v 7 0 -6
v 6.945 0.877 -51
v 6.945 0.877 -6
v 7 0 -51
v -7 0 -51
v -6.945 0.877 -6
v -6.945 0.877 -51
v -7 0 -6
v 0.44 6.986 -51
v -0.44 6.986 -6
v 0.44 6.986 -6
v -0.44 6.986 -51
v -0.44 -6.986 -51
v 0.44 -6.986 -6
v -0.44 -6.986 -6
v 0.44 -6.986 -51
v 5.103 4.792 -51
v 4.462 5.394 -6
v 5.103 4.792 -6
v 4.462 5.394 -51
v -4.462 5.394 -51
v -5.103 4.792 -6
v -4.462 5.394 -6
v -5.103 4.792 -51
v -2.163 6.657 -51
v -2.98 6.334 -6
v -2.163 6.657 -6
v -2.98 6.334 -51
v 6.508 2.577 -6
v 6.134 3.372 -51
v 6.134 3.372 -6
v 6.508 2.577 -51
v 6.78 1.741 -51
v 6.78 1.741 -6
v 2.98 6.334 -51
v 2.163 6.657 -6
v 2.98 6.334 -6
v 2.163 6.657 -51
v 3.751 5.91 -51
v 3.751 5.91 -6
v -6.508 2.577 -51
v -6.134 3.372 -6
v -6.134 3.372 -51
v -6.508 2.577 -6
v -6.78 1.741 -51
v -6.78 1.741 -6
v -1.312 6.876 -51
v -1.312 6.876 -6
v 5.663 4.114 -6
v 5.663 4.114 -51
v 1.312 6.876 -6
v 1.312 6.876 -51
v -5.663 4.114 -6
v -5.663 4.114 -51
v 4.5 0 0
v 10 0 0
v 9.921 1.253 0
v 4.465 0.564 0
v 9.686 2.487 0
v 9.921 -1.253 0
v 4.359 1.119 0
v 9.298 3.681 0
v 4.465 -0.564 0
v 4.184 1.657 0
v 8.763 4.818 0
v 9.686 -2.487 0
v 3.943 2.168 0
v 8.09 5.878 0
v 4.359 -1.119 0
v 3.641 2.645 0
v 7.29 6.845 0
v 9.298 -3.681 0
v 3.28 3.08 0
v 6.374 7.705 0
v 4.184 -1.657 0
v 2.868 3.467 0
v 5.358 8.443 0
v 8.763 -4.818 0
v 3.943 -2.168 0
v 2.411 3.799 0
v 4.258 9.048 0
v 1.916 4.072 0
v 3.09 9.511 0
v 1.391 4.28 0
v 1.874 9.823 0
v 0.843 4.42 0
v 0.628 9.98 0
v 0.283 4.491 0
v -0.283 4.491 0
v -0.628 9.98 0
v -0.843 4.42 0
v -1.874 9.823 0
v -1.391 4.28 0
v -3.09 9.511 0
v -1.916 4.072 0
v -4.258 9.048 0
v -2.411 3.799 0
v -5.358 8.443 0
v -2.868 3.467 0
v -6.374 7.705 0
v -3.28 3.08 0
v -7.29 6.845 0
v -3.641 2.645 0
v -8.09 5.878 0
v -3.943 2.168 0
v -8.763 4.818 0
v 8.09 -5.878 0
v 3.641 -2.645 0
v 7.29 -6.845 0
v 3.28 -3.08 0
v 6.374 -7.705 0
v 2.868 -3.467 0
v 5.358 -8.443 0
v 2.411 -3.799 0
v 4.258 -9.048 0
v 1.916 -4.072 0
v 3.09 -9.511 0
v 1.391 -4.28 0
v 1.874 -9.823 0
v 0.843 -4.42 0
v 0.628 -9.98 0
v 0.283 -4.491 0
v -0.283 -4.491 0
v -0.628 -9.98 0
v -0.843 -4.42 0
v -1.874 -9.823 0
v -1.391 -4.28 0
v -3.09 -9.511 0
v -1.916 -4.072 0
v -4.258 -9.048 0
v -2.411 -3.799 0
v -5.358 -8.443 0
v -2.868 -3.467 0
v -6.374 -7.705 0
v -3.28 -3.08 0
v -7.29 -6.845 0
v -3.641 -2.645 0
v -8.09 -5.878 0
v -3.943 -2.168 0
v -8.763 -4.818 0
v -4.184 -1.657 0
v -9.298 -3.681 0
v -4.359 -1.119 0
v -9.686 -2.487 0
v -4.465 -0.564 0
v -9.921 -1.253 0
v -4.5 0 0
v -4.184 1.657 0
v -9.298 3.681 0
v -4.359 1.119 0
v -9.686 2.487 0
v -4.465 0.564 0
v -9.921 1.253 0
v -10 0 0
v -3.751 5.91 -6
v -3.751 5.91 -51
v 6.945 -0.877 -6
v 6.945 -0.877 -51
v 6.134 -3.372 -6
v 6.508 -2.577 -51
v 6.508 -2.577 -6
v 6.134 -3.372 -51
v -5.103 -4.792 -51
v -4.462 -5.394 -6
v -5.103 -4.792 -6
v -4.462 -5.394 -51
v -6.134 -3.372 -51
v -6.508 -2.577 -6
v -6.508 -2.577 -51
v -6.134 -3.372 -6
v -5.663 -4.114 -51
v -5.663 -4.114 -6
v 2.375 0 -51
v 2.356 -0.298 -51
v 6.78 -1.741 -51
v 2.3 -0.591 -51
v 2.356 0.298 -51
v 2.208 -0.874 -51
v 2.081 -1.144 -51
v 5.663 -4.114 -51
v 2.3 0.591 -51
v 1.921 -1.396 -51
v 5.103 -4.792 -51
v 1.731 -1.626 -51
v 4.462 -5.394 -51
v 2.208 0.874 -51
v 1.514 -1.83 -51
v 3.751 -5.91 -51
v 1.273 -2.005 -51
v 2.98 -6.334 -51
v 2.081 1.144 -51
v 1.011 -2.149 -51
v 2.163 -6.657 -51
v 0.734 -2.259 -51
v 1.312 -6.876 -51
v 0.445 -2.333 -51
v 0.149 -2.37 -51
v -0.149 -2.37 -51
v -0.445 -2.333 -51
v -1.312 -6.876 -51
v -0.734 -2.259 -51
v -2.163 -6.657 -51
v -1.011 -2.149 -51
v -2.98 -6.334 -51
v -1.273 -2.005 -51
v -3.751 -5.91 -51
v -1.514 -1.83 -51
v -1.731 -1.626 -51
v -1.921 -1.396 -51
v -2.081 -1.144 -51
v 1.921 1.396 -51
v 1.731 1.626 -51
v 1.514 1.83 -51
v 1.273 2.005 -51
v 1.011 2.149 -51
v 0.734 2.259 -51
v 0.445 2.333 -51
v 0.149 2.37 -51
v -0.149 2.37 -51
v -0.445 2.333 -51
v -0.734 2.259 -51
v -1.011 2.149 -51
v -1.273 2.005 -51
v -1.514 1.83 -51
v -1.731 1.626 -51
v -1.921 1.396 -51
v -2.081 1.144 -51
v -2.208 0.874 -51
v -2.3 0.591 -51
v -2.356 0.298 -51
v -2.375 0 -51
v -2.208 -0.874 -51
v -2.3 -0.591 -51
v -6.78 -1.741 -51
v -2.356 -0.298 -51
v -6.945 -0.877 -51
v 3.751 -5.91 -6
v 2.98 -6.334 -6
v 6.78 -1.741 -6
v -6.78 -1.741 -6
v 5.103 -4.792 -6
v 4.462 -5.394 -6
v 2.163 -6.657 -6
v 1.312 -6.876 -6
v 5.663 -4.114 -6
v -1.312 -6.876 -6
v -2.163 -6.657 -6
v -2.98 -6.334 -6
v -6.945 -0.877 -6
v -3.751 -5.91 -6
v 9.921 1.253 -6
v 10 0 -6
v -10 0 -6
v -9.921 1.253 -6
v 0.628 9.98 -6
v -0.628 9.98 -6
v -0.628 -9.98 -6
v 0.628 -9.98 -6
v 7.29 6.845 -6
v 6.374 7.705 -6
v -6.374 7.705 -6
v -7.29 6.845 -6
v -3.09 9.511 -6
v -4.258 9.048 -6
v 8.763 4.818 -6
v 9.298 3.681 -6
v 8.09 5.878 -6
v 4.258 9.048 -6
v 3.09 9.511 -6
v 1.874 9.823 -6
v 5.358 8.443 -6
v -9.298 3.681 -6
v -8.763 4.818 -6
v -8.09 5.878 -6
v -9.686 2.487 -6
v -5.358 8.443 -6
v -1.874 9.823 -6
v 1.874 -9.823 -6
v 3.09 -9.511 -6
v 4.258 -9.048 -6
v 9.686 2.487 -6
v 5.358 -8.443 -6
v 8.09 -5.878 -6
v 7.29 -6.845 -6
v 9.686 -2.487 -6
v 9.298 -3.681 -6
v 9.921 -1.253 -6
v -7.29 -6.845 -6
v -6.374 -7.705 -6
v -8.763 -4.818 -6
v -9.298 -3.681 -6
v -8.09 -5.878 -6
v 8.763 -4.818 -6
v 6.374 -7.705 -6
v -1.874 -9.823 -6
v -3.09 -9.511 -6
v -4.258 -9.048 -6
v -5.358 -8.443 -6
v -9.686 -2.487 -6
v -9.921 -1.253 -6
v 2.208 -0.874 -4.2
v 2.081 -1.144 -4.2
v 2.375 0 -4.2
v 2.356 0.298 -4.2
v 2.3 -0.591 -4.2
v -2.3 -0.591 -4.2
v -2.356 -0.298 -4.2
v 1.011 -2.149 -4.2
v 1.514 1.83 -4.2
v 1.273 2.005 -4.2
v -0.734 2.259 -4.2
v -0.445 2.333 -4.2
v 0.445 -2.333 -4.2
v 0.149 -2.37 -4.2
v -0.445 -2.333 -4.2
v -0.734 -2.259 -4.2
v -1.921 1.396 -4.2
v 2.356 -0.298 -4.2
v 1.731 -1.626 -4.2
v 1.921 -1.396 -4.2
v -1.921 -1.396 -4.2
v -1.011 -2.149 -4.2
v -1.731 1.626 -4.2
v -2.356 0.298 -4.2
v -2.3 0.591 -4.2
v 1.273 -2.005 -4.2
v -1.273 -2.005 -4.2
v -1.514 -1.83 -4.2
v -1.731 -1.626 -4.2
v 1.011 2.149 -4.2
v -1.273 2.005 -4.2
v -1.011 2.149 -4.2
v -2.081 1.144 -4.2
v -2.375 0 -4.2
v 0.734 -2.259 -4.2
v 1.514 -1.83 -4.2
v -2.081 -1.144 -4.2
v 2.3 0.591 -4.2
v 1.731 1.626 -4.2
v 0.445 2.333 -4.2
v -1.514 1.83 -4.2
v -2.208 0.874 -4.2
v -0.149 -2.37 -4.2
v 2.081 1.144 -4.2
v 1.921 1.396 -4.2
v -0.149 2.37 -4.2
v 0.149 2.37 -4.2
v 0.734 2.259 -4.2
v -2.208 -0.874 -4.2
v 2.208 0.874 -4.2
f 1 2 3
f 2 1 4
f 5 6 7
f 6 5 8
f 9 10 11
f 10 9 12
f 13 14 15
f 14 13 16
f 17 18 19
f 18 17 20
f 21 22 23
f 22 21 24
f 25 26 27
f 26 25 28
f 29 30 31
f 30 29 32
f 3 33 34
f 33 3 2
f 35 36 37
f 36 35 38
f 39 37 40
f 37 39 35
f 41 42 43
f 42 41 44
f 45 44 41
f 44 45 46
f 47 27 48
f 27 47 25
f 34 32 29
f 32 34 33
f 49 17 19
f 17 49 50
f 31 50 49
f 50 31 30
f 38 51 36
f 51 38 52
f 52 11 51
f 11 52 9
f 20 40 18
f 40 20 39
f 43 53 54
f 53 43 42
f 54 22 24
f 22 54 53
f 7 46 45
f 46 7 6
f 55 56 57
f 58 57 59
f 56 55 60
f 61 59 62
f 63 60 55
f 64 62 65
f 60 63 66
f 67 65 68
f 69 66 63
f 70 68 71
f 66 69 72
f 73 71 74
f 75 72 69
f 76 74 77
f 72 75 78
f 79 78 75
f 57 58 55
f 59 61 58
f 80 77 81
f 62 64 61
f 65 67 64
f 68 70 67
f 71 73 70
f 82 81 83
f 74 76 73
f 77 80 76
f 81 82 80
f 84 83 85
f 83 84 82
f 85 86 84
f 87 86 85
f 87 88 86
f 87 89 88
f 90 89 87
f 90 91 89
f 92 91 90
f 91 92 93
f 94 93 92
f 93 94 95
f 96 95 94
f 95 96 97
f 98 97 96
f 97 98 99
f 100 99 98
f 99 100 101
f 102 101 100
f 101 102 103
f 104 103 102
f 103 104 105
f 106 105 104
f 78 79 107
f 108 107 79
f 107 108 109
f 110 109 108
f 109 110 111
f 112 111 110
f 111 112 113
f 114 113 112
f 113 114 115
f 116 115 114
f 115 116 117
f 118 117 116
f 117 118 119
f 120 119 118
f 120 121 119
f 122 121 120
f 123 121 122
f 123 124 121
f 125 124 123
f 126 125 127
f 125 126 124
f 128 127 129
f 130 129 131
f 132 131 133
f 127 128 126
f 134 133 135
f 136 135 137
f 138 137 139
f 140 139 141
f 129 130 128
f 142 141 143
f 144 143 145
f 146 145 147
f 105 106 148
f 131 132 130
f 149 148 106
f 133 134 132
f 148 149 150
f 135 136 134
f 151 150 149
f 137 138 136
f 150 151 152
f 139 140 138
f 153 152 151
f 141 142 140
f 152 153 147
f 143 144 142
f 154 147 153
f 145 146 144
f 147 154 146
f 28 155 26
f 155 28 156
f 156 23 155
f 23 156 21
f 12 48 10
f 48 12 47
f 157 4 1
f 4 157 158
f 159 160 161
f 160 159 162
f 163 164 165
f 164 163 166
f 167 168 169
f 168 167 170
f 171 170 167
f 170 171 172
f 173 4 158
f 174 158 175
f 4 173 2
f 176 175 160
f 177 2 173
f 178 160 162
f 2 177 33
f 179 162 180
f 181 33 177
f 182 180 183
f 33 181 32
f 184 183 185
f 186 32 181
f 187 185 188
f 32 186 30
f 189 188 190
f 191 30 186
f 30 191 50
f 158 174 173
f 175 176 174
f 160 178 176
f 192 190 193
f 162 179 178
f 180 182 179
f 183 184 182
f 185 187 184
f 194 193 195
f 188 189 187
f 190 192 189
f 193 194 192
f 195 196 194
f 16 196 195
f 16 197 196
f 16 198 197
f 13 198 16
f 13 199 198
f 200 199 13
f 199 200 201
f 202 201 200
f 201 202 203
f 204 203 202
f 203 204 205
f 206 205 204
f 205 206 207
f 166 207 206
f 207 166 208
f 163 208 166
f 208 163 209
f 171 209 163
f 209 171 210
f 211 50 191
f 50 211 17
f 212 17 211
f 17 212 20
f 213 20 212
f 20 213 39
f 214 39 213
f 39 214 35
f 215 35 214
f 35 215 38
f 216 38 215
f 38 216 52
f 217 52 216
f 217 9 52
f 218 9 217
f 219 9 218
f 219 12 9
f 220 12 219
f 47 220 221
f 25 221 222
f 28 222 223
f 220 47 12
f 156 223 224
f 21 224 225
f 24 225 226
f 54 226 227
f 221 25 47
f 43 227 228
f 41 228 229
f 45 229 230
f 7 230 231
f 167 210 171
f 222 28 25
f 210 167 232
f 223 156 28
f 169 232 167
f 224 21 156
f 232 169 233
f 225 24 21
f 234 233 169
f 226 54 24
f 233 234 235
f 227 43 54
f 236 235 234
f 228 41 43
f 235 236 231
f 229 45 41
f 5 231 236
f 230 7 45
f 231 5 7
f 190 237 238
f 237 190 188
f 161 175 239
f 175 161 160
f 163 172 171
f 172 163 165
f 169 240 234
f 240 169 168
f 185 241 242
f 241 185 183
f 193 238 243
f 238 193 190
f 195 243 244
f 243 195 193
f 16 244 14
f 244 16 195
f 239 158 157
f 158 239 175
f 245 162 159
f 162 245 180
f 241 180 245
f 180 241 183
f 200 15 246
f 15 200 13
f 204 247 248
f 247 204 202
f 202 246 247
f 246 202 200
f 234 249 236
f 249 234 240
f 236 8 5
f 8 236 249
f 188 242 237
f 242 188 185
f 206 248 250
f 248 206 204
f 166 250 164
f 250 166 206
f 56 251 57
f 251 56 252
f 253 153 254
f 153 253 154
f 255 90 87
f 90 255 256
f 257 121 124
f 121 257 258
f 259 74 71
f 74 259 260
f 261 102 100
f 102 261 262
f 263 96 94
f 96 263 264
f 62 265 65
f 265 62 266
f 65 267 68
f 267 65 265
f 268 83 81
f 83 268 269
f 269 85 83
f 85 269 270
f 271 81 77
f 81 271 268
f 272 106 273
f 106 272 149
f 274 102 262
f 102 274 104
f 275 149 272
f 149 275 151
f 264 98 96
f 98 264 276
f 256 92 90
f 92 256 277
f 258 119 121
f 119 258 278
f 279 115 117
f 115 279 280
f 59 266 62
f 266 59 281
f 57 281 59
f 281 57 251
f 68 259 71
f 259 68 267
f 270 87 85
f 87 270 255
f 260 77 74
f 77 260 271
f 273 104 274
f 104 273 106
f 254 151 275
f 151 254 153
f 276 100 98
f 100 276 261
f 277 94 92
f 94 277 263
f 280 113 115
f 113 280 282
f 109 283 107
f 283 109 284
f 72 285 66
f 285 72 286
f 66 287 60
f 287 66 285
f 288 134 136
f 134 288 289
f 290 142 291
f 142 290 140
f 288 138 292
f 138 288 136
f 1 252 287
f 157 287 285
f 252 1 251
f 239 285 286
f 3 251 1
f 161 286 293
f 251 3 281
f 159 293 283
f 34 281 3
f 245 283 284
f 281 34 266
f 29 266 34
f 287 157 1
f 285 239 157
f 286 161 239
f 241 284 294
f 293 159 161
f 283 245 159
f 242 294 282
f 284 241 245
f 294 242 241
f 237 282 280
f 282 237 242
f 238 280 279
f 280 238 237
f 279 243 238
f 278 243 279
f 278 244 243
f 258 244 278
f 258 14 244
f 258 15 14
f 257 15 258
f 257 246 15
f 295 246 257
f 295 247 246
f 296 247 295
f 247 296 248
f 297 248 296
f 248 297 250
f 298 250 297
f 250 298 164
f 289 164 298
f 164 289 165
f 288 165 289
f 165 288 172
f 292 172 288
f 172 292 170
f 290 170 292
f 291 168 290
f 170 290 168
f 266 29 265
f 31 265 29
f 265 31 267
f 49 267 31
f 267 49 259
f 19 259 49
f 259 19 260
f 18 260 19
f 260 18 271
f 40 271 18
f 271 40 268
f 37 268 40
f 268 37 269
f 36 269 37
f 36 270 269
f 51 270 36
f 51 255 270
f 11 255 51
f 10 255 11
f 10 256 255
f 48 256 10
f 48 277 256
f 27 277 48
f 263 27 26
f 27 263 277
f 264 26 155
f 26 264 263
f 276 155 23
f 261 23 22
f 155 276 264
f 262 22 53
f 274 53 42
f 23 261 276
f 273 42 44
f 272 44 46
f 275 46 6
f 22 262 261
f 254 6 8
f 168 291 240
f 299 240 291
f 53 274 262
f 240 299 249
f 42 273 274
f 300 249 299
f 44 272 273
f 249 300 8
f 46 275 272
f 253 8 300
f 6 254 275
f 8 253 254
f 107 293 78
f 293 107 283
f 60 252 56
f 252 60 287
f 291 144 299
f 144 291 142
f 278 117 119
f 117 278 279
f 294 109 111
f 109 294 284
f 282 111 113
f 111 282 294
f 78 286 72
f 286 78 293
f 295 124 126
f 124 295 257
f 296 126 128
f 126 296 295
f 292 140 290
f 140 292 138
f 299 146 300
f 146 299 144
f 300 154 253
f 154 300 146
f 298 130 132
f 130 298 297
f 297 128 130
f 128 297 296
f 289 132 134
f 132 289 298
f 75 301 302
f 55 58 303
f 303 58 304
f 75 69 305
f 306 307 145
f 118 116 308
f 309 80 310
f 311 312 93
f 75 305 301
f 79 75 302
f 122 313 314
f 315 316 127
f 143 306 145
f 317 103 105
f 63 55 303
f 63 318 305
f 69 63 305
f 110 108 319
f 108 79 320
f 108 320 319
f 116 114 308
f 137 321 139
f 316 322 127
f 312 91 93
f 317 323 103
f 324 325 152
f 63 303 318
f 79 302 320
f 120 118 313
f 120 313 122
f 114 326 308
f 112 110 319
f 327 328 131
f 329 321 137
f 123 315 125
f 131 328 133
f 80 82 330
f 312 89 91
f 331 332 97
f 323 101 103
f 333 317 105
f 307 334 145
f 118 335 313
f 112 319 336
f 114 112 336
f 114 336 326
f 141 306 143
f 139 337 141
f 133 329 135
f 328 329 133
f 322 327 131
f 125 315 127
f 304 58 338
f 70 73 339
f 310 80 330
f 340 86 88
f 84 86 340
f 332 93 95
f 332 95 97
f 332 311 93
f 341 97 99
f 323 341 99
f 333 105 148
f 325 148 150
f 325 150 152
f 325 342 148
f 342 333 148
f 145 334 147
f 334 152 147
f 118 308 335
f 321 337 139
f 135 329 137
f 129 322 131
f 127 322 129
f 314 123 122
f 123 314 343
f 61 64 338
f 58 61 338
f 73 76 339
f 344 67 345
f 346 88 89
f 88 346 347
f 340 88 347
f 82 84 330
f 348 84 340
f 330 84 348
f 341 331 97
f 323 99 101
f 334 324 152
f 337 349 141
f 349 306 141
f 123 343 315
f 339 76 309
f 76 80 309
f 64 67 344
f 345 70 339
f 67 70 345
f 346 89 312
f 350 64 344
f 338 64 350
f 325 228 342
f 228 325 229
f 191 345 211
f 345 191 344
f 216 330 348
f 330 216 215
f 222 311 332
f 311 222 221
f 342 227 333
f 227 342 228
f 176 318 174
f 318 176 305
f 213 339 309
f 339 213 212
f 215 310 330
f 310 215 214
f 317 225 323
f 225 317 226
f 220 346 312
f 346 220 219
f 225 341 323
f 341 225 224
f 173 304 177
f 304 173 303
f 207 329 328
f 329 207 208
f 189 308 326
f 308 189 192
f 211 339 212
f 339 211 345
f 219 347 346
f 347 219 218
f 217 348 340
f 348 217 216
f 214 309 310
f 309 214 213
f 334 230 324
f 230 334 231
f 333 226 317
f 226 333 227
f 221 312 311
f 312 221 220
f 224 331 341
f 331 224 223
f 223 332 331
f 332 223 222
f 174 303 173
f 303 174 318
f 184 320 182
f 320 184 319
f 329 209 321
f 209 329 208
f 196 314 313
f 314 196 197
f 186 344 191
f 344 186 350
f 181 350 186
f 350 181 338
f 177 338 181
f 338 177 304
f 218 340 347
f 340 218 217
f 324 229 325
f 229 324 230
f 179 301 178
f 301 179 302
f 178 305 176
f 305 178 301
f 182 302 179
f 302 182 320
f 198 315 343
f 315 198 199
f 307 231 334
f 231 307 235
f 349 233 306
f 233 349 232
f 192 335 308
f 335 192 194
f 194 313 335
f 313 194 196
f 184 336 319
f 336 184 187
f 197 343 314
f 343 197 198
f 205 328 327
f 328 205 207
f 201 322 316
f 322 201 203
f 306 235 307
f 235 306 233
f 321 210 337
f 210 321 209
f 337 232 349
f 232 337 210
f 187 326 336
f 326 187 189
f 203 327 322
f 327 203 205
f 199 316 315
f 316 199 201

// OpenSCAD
$fn = 50;


difference() {
	union() {
		translate(v = [0, 0, -51.0000000000]) {
			cylinder(h = 51, r = 7.0000000000);
		}
		translate(v = [0, 0, -6.0000000000]) {
			cylinder(h = 6, r = 10.0000000000);
		}
	}
	union() {
		translate(v = [0, 0, 0]) {
			rotate(a = [0, 0, 0]) {
				difference() {
					union() {
						#translate(v = [0, 0, -51.0000000000]) {
							cylinder(h = 51, r = 2.2500000000);
						}
						#translate(v = [0, 0, -4.2000000000]) {
							cylinder(h = 4.2000000000, r = 7.0000000000, r1 = 2.3750000000, r2 = 4.5000000000);
						}
						#translate(v = [0, 0, -51.0000000000]) {
							cylinder(h = 51, r = 2.3750000000);
						}
						#translate(v = [0, 0, -51.0000000000]) {
							cylinder(h = 51, r = 2.2500000000);
						}
					}
					union();
				}
			}
		}
	}
}
